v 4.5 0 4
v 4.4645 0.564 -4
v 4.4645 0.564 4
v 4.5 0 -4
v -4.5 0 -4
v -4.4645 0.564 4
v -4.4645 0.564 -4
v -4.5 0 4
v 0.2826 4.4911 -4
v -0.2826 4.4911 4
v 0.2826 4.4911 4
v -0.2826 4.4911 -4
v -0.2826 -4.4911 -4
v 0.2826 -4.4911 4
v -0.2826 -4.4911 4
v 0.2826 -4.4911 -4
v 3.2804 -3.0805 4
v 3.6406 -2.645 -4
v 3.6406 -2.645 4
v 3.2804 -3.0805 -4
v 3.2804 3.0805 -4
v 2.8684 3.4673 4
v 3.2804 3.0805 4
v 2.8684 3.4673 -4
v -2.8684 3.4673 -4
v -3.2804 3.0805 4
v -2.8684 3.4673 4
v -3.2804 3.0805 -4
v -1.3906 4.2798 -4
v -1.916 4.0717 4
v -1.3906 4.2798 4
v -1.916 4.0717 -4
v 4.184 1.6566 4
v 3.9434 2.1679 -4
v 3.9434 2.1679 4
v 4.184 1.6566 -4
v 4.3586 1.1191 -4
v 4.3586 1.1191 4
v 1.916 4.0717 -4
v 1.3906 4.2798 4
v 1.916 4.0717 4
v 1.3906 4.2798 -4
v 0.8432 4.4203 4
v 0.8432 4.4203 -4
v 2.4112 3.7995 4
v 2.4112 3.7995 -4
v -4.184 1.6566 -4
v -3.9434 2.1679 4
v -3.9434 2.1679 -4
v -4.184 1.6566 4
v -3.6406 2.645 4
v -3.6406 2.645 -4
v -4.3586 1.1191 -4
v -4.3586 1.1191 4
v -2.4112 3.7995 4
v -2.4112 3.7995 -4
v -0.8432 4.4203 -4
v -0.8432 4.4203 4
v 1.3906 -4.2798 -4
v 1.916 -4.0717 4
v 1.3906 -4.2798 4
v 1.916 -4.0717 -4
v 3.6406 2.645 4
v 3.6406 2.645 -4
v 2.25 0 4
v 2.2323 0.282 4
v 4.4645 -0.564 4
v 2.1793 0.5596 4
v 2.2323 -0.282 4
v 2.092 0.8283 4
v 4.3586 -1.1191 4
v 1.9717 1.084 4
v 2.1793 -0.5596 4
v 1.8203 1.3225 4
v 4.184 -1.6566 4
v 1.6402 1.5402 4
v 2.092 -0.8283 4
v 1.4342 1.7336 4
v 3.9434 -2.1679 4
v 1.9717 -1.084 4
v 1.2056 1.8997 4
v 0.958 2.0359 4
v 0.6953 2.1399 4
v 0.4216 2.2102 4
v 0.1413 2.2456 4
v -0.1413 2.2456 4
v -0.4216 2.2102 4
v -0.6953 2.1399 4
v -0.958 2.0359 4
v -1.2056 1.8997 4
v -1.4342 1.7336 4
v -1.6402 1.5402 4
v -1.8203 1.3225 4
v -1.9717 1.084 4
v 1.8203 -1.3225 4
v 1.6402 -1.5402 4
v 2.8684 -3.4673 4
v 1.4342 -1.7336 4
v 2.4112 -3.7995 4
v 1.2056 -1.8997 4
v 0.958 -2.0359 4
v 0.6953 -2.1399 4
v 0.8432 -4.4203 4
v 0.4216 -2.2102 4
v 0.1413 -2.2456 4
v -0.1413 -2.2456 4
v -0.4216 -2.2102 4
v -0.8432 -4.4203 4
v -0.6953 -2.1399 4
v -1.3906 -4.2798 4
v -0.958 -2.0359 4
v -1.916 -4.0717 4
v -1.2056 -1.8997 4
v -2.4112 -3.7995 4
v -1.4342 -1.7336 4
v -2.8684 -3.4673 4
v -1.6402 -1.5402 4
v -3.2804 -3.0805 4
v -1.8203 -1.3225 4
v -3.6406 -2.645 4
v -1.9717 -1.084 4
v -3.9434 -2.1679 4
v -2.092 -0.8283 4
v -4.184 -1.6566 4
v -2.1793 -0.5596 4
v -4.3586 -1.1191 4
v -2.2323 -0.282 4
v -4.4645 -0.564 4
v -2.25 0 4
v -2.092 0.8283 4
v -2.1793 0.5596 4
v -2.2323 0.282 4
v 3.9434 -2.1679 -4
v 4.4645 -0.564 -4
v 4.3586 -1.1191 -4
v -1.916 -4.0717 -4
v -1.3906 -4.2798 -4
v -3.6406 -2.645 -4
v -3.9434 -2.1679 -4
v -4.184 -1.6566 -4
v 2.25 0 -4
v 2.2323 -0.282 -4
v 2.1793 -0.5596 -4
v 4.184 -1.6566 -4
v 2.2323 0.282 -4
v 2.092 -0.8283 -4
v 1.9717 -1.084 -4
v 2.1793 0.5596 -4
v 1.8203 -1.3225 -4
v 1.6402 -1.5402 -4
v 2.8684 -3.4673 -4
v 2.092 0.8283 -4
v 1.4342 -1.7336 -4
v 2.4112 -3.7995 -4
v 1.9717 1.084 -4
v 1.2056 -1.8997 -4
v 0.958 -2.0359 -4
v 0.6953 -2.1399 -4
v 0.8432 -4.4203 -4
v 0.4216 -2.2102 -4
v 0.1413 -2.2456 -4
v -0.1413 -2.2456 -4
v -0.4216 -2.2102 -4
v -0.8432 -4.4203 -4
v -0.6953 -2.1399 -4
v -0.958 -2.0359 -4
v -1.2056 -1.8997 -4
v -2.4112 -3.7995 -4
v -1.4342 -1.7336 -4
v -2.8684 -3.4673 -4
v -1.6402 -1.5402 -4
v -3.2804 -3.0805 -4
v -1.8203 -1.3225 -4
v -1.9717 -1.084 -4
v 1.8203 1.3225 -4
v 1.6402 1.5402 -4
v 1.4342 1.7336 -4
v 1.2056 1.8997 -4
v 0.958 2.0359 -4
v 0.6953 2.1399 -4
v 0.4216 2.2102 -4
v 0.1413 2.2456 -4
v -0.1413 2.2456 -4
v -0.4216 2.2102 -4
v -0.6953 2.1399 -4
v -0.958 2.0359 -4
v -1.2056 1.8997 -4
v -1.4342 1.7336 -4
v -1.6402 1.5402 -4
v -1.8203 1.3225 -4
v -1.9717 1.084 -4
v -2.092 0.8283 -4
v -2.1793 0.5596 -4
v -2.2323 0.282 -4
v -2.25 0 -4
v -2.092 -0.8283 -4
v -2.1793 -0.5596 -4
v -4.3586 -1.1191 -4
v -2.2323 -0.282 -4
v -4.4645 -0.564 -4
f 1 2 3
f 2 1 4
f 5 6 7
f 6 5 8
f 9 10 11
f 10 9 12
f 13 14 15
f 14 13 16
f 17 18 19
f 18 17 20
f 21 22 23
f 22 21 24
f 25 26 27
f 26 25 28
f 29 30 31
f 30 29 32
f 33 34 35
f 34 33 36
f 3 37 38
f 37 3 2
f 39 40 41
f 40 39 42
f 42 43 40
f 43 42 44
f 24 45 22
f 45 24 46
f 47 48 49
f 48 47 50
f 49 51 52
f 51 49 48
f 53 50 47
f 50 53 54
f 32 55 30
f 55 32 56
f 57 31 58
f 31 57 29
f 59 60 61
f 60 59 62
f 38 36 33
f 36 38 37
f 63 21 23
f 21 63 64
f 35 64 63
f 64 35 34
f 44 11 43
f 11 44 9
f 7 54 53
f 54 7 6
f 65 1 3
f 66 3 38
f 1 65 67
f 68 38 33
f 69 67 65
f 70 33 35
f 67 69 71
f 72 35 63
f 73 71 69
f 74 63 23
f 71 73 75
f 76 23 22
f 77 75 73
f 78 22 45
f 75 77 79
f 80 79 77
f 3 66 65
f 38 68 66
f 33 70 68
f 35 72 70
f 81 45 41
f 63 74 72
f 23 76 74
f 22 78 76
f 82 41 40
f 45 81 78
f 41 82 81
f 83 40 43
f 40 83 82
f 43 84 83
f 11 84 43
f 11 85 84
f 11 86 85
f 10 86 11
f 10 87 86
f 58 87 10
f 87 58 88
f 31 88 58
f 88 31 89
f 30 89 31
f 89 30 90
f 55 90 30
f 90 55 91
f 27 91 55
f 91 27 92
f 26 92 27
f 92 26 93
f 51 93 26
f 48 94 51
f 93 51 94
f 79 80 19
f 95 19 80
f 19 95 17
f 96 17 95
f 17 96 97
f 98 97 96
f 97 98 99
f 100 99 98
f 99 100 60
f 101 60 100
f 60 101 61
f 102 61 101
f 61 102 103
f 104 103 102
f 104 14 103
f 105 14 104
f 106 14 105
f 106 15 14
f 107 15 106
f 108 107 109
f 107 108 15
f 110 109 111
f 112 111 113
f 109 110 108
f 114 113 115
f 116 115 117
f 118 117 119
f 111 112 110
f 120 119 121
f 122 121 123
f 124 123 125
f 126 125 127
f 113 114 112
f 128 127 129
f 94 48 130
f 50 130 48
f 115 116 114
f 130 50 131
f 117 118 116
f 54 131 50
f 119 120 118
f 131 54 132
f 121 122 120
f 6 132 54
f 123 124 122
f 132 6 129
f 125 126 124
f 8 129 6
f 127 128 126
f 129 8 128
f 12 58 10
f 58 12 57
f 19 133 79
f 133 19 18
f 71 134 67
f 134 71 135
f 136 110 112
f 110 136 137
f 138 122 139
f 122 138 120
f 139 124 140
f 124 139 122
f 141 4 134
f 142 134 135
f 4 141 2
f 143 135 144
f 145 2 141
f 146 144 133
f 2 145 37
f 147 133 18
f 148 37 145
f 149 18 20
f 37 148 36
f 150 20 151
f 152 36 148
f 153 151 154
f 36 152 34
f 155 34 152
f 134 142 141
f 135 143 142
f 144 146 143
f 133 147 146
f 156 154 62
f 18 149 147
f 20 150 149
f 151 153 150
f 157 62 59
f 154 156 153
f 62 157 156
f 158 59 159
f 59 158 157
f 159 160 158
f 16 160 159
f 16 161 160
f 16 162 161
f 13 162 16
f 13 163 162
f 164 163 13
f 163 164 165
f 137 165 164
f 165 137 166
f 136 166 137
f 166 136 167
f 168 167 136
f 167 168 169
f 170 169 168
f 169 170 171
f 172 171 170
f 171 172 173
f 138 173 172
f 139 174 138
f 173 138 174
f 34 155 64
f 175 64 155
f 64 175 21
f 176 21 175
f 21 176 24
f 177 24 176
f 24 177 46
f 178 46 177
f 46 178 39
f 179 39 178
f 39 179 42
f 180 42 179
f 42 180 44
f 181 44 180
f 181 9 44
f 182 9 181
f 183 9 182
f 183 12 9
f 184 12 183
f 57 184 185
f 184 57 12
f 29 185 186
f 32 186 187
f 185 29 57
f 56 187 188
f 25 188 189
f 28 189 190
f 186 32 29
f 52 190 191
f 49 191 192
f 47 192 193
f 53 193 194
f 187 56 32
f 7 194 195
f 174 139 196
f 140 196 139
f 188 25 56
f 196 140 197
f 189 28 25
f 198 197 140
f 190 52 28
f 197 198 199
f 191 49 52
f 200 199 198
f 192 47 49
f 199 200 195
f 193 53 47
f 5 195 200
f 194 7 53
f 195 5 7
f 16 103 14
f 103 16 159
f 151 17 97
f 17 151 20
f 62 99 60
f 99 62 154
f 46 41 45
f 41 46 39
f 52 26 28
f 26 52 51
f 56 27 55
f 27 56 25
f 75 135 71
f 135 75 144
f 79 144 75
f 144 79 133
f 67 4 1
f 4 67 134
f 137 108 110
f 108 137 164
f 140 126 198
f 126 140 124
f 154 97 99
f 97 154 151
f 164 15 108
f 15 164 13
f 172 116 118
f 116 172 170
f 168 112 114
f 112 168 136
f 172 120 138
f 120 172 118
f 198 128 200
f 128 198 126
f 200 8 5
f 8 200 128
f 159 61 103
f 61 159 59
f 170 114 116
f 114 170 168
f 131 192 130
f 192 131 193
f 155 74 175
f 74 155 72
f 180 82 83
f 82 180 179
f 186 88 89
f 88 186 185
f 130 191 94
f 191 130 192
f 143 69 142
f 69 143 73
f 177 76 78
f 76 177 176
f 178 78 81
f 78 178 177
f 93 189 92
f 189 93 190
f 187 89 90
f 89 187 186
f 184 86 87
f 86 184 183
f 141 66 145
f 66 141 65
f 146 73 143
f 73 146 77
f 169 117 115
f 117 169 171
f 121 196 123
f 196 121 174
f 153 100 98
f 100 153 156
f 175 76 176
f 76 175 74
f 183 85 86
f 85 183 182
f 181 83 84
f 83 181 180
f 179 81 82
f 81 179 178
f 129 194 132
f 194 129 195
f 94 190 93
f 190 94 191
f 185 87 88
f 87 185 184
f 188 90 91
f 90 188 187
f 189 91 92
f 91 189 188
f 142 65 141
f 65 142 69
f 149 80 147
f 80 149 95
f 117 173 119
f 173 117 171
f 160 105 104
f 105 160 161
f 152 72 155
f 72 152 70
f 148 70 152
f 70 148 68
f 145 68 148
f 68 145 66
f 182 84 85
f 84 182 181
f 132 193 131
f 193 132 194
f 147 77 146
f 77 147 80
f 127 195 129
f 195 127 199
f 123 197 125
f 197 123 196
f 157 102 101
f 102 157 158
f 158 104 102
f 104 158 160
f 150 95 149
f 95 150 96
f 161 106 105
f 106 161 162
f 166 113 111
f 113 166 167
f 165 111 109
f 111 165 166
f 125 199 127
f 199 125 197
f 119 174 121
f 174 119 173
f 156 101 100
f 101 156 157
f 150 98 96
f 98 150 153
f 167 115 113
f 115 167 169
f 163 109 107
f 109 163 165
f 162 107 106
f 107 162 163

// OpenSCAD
$fn = 50;


difference() {
	union() {
		translate(v = [0, 0, -4.0000000000]) {
			cylinder(h = 8, r = 4.5000000000);
		}
	}
	union() {
		translate(v = [0, 0, -100.0000000000]) {
			cylinder(h = 200, r = 2.2500000000);
		}
	}
}
